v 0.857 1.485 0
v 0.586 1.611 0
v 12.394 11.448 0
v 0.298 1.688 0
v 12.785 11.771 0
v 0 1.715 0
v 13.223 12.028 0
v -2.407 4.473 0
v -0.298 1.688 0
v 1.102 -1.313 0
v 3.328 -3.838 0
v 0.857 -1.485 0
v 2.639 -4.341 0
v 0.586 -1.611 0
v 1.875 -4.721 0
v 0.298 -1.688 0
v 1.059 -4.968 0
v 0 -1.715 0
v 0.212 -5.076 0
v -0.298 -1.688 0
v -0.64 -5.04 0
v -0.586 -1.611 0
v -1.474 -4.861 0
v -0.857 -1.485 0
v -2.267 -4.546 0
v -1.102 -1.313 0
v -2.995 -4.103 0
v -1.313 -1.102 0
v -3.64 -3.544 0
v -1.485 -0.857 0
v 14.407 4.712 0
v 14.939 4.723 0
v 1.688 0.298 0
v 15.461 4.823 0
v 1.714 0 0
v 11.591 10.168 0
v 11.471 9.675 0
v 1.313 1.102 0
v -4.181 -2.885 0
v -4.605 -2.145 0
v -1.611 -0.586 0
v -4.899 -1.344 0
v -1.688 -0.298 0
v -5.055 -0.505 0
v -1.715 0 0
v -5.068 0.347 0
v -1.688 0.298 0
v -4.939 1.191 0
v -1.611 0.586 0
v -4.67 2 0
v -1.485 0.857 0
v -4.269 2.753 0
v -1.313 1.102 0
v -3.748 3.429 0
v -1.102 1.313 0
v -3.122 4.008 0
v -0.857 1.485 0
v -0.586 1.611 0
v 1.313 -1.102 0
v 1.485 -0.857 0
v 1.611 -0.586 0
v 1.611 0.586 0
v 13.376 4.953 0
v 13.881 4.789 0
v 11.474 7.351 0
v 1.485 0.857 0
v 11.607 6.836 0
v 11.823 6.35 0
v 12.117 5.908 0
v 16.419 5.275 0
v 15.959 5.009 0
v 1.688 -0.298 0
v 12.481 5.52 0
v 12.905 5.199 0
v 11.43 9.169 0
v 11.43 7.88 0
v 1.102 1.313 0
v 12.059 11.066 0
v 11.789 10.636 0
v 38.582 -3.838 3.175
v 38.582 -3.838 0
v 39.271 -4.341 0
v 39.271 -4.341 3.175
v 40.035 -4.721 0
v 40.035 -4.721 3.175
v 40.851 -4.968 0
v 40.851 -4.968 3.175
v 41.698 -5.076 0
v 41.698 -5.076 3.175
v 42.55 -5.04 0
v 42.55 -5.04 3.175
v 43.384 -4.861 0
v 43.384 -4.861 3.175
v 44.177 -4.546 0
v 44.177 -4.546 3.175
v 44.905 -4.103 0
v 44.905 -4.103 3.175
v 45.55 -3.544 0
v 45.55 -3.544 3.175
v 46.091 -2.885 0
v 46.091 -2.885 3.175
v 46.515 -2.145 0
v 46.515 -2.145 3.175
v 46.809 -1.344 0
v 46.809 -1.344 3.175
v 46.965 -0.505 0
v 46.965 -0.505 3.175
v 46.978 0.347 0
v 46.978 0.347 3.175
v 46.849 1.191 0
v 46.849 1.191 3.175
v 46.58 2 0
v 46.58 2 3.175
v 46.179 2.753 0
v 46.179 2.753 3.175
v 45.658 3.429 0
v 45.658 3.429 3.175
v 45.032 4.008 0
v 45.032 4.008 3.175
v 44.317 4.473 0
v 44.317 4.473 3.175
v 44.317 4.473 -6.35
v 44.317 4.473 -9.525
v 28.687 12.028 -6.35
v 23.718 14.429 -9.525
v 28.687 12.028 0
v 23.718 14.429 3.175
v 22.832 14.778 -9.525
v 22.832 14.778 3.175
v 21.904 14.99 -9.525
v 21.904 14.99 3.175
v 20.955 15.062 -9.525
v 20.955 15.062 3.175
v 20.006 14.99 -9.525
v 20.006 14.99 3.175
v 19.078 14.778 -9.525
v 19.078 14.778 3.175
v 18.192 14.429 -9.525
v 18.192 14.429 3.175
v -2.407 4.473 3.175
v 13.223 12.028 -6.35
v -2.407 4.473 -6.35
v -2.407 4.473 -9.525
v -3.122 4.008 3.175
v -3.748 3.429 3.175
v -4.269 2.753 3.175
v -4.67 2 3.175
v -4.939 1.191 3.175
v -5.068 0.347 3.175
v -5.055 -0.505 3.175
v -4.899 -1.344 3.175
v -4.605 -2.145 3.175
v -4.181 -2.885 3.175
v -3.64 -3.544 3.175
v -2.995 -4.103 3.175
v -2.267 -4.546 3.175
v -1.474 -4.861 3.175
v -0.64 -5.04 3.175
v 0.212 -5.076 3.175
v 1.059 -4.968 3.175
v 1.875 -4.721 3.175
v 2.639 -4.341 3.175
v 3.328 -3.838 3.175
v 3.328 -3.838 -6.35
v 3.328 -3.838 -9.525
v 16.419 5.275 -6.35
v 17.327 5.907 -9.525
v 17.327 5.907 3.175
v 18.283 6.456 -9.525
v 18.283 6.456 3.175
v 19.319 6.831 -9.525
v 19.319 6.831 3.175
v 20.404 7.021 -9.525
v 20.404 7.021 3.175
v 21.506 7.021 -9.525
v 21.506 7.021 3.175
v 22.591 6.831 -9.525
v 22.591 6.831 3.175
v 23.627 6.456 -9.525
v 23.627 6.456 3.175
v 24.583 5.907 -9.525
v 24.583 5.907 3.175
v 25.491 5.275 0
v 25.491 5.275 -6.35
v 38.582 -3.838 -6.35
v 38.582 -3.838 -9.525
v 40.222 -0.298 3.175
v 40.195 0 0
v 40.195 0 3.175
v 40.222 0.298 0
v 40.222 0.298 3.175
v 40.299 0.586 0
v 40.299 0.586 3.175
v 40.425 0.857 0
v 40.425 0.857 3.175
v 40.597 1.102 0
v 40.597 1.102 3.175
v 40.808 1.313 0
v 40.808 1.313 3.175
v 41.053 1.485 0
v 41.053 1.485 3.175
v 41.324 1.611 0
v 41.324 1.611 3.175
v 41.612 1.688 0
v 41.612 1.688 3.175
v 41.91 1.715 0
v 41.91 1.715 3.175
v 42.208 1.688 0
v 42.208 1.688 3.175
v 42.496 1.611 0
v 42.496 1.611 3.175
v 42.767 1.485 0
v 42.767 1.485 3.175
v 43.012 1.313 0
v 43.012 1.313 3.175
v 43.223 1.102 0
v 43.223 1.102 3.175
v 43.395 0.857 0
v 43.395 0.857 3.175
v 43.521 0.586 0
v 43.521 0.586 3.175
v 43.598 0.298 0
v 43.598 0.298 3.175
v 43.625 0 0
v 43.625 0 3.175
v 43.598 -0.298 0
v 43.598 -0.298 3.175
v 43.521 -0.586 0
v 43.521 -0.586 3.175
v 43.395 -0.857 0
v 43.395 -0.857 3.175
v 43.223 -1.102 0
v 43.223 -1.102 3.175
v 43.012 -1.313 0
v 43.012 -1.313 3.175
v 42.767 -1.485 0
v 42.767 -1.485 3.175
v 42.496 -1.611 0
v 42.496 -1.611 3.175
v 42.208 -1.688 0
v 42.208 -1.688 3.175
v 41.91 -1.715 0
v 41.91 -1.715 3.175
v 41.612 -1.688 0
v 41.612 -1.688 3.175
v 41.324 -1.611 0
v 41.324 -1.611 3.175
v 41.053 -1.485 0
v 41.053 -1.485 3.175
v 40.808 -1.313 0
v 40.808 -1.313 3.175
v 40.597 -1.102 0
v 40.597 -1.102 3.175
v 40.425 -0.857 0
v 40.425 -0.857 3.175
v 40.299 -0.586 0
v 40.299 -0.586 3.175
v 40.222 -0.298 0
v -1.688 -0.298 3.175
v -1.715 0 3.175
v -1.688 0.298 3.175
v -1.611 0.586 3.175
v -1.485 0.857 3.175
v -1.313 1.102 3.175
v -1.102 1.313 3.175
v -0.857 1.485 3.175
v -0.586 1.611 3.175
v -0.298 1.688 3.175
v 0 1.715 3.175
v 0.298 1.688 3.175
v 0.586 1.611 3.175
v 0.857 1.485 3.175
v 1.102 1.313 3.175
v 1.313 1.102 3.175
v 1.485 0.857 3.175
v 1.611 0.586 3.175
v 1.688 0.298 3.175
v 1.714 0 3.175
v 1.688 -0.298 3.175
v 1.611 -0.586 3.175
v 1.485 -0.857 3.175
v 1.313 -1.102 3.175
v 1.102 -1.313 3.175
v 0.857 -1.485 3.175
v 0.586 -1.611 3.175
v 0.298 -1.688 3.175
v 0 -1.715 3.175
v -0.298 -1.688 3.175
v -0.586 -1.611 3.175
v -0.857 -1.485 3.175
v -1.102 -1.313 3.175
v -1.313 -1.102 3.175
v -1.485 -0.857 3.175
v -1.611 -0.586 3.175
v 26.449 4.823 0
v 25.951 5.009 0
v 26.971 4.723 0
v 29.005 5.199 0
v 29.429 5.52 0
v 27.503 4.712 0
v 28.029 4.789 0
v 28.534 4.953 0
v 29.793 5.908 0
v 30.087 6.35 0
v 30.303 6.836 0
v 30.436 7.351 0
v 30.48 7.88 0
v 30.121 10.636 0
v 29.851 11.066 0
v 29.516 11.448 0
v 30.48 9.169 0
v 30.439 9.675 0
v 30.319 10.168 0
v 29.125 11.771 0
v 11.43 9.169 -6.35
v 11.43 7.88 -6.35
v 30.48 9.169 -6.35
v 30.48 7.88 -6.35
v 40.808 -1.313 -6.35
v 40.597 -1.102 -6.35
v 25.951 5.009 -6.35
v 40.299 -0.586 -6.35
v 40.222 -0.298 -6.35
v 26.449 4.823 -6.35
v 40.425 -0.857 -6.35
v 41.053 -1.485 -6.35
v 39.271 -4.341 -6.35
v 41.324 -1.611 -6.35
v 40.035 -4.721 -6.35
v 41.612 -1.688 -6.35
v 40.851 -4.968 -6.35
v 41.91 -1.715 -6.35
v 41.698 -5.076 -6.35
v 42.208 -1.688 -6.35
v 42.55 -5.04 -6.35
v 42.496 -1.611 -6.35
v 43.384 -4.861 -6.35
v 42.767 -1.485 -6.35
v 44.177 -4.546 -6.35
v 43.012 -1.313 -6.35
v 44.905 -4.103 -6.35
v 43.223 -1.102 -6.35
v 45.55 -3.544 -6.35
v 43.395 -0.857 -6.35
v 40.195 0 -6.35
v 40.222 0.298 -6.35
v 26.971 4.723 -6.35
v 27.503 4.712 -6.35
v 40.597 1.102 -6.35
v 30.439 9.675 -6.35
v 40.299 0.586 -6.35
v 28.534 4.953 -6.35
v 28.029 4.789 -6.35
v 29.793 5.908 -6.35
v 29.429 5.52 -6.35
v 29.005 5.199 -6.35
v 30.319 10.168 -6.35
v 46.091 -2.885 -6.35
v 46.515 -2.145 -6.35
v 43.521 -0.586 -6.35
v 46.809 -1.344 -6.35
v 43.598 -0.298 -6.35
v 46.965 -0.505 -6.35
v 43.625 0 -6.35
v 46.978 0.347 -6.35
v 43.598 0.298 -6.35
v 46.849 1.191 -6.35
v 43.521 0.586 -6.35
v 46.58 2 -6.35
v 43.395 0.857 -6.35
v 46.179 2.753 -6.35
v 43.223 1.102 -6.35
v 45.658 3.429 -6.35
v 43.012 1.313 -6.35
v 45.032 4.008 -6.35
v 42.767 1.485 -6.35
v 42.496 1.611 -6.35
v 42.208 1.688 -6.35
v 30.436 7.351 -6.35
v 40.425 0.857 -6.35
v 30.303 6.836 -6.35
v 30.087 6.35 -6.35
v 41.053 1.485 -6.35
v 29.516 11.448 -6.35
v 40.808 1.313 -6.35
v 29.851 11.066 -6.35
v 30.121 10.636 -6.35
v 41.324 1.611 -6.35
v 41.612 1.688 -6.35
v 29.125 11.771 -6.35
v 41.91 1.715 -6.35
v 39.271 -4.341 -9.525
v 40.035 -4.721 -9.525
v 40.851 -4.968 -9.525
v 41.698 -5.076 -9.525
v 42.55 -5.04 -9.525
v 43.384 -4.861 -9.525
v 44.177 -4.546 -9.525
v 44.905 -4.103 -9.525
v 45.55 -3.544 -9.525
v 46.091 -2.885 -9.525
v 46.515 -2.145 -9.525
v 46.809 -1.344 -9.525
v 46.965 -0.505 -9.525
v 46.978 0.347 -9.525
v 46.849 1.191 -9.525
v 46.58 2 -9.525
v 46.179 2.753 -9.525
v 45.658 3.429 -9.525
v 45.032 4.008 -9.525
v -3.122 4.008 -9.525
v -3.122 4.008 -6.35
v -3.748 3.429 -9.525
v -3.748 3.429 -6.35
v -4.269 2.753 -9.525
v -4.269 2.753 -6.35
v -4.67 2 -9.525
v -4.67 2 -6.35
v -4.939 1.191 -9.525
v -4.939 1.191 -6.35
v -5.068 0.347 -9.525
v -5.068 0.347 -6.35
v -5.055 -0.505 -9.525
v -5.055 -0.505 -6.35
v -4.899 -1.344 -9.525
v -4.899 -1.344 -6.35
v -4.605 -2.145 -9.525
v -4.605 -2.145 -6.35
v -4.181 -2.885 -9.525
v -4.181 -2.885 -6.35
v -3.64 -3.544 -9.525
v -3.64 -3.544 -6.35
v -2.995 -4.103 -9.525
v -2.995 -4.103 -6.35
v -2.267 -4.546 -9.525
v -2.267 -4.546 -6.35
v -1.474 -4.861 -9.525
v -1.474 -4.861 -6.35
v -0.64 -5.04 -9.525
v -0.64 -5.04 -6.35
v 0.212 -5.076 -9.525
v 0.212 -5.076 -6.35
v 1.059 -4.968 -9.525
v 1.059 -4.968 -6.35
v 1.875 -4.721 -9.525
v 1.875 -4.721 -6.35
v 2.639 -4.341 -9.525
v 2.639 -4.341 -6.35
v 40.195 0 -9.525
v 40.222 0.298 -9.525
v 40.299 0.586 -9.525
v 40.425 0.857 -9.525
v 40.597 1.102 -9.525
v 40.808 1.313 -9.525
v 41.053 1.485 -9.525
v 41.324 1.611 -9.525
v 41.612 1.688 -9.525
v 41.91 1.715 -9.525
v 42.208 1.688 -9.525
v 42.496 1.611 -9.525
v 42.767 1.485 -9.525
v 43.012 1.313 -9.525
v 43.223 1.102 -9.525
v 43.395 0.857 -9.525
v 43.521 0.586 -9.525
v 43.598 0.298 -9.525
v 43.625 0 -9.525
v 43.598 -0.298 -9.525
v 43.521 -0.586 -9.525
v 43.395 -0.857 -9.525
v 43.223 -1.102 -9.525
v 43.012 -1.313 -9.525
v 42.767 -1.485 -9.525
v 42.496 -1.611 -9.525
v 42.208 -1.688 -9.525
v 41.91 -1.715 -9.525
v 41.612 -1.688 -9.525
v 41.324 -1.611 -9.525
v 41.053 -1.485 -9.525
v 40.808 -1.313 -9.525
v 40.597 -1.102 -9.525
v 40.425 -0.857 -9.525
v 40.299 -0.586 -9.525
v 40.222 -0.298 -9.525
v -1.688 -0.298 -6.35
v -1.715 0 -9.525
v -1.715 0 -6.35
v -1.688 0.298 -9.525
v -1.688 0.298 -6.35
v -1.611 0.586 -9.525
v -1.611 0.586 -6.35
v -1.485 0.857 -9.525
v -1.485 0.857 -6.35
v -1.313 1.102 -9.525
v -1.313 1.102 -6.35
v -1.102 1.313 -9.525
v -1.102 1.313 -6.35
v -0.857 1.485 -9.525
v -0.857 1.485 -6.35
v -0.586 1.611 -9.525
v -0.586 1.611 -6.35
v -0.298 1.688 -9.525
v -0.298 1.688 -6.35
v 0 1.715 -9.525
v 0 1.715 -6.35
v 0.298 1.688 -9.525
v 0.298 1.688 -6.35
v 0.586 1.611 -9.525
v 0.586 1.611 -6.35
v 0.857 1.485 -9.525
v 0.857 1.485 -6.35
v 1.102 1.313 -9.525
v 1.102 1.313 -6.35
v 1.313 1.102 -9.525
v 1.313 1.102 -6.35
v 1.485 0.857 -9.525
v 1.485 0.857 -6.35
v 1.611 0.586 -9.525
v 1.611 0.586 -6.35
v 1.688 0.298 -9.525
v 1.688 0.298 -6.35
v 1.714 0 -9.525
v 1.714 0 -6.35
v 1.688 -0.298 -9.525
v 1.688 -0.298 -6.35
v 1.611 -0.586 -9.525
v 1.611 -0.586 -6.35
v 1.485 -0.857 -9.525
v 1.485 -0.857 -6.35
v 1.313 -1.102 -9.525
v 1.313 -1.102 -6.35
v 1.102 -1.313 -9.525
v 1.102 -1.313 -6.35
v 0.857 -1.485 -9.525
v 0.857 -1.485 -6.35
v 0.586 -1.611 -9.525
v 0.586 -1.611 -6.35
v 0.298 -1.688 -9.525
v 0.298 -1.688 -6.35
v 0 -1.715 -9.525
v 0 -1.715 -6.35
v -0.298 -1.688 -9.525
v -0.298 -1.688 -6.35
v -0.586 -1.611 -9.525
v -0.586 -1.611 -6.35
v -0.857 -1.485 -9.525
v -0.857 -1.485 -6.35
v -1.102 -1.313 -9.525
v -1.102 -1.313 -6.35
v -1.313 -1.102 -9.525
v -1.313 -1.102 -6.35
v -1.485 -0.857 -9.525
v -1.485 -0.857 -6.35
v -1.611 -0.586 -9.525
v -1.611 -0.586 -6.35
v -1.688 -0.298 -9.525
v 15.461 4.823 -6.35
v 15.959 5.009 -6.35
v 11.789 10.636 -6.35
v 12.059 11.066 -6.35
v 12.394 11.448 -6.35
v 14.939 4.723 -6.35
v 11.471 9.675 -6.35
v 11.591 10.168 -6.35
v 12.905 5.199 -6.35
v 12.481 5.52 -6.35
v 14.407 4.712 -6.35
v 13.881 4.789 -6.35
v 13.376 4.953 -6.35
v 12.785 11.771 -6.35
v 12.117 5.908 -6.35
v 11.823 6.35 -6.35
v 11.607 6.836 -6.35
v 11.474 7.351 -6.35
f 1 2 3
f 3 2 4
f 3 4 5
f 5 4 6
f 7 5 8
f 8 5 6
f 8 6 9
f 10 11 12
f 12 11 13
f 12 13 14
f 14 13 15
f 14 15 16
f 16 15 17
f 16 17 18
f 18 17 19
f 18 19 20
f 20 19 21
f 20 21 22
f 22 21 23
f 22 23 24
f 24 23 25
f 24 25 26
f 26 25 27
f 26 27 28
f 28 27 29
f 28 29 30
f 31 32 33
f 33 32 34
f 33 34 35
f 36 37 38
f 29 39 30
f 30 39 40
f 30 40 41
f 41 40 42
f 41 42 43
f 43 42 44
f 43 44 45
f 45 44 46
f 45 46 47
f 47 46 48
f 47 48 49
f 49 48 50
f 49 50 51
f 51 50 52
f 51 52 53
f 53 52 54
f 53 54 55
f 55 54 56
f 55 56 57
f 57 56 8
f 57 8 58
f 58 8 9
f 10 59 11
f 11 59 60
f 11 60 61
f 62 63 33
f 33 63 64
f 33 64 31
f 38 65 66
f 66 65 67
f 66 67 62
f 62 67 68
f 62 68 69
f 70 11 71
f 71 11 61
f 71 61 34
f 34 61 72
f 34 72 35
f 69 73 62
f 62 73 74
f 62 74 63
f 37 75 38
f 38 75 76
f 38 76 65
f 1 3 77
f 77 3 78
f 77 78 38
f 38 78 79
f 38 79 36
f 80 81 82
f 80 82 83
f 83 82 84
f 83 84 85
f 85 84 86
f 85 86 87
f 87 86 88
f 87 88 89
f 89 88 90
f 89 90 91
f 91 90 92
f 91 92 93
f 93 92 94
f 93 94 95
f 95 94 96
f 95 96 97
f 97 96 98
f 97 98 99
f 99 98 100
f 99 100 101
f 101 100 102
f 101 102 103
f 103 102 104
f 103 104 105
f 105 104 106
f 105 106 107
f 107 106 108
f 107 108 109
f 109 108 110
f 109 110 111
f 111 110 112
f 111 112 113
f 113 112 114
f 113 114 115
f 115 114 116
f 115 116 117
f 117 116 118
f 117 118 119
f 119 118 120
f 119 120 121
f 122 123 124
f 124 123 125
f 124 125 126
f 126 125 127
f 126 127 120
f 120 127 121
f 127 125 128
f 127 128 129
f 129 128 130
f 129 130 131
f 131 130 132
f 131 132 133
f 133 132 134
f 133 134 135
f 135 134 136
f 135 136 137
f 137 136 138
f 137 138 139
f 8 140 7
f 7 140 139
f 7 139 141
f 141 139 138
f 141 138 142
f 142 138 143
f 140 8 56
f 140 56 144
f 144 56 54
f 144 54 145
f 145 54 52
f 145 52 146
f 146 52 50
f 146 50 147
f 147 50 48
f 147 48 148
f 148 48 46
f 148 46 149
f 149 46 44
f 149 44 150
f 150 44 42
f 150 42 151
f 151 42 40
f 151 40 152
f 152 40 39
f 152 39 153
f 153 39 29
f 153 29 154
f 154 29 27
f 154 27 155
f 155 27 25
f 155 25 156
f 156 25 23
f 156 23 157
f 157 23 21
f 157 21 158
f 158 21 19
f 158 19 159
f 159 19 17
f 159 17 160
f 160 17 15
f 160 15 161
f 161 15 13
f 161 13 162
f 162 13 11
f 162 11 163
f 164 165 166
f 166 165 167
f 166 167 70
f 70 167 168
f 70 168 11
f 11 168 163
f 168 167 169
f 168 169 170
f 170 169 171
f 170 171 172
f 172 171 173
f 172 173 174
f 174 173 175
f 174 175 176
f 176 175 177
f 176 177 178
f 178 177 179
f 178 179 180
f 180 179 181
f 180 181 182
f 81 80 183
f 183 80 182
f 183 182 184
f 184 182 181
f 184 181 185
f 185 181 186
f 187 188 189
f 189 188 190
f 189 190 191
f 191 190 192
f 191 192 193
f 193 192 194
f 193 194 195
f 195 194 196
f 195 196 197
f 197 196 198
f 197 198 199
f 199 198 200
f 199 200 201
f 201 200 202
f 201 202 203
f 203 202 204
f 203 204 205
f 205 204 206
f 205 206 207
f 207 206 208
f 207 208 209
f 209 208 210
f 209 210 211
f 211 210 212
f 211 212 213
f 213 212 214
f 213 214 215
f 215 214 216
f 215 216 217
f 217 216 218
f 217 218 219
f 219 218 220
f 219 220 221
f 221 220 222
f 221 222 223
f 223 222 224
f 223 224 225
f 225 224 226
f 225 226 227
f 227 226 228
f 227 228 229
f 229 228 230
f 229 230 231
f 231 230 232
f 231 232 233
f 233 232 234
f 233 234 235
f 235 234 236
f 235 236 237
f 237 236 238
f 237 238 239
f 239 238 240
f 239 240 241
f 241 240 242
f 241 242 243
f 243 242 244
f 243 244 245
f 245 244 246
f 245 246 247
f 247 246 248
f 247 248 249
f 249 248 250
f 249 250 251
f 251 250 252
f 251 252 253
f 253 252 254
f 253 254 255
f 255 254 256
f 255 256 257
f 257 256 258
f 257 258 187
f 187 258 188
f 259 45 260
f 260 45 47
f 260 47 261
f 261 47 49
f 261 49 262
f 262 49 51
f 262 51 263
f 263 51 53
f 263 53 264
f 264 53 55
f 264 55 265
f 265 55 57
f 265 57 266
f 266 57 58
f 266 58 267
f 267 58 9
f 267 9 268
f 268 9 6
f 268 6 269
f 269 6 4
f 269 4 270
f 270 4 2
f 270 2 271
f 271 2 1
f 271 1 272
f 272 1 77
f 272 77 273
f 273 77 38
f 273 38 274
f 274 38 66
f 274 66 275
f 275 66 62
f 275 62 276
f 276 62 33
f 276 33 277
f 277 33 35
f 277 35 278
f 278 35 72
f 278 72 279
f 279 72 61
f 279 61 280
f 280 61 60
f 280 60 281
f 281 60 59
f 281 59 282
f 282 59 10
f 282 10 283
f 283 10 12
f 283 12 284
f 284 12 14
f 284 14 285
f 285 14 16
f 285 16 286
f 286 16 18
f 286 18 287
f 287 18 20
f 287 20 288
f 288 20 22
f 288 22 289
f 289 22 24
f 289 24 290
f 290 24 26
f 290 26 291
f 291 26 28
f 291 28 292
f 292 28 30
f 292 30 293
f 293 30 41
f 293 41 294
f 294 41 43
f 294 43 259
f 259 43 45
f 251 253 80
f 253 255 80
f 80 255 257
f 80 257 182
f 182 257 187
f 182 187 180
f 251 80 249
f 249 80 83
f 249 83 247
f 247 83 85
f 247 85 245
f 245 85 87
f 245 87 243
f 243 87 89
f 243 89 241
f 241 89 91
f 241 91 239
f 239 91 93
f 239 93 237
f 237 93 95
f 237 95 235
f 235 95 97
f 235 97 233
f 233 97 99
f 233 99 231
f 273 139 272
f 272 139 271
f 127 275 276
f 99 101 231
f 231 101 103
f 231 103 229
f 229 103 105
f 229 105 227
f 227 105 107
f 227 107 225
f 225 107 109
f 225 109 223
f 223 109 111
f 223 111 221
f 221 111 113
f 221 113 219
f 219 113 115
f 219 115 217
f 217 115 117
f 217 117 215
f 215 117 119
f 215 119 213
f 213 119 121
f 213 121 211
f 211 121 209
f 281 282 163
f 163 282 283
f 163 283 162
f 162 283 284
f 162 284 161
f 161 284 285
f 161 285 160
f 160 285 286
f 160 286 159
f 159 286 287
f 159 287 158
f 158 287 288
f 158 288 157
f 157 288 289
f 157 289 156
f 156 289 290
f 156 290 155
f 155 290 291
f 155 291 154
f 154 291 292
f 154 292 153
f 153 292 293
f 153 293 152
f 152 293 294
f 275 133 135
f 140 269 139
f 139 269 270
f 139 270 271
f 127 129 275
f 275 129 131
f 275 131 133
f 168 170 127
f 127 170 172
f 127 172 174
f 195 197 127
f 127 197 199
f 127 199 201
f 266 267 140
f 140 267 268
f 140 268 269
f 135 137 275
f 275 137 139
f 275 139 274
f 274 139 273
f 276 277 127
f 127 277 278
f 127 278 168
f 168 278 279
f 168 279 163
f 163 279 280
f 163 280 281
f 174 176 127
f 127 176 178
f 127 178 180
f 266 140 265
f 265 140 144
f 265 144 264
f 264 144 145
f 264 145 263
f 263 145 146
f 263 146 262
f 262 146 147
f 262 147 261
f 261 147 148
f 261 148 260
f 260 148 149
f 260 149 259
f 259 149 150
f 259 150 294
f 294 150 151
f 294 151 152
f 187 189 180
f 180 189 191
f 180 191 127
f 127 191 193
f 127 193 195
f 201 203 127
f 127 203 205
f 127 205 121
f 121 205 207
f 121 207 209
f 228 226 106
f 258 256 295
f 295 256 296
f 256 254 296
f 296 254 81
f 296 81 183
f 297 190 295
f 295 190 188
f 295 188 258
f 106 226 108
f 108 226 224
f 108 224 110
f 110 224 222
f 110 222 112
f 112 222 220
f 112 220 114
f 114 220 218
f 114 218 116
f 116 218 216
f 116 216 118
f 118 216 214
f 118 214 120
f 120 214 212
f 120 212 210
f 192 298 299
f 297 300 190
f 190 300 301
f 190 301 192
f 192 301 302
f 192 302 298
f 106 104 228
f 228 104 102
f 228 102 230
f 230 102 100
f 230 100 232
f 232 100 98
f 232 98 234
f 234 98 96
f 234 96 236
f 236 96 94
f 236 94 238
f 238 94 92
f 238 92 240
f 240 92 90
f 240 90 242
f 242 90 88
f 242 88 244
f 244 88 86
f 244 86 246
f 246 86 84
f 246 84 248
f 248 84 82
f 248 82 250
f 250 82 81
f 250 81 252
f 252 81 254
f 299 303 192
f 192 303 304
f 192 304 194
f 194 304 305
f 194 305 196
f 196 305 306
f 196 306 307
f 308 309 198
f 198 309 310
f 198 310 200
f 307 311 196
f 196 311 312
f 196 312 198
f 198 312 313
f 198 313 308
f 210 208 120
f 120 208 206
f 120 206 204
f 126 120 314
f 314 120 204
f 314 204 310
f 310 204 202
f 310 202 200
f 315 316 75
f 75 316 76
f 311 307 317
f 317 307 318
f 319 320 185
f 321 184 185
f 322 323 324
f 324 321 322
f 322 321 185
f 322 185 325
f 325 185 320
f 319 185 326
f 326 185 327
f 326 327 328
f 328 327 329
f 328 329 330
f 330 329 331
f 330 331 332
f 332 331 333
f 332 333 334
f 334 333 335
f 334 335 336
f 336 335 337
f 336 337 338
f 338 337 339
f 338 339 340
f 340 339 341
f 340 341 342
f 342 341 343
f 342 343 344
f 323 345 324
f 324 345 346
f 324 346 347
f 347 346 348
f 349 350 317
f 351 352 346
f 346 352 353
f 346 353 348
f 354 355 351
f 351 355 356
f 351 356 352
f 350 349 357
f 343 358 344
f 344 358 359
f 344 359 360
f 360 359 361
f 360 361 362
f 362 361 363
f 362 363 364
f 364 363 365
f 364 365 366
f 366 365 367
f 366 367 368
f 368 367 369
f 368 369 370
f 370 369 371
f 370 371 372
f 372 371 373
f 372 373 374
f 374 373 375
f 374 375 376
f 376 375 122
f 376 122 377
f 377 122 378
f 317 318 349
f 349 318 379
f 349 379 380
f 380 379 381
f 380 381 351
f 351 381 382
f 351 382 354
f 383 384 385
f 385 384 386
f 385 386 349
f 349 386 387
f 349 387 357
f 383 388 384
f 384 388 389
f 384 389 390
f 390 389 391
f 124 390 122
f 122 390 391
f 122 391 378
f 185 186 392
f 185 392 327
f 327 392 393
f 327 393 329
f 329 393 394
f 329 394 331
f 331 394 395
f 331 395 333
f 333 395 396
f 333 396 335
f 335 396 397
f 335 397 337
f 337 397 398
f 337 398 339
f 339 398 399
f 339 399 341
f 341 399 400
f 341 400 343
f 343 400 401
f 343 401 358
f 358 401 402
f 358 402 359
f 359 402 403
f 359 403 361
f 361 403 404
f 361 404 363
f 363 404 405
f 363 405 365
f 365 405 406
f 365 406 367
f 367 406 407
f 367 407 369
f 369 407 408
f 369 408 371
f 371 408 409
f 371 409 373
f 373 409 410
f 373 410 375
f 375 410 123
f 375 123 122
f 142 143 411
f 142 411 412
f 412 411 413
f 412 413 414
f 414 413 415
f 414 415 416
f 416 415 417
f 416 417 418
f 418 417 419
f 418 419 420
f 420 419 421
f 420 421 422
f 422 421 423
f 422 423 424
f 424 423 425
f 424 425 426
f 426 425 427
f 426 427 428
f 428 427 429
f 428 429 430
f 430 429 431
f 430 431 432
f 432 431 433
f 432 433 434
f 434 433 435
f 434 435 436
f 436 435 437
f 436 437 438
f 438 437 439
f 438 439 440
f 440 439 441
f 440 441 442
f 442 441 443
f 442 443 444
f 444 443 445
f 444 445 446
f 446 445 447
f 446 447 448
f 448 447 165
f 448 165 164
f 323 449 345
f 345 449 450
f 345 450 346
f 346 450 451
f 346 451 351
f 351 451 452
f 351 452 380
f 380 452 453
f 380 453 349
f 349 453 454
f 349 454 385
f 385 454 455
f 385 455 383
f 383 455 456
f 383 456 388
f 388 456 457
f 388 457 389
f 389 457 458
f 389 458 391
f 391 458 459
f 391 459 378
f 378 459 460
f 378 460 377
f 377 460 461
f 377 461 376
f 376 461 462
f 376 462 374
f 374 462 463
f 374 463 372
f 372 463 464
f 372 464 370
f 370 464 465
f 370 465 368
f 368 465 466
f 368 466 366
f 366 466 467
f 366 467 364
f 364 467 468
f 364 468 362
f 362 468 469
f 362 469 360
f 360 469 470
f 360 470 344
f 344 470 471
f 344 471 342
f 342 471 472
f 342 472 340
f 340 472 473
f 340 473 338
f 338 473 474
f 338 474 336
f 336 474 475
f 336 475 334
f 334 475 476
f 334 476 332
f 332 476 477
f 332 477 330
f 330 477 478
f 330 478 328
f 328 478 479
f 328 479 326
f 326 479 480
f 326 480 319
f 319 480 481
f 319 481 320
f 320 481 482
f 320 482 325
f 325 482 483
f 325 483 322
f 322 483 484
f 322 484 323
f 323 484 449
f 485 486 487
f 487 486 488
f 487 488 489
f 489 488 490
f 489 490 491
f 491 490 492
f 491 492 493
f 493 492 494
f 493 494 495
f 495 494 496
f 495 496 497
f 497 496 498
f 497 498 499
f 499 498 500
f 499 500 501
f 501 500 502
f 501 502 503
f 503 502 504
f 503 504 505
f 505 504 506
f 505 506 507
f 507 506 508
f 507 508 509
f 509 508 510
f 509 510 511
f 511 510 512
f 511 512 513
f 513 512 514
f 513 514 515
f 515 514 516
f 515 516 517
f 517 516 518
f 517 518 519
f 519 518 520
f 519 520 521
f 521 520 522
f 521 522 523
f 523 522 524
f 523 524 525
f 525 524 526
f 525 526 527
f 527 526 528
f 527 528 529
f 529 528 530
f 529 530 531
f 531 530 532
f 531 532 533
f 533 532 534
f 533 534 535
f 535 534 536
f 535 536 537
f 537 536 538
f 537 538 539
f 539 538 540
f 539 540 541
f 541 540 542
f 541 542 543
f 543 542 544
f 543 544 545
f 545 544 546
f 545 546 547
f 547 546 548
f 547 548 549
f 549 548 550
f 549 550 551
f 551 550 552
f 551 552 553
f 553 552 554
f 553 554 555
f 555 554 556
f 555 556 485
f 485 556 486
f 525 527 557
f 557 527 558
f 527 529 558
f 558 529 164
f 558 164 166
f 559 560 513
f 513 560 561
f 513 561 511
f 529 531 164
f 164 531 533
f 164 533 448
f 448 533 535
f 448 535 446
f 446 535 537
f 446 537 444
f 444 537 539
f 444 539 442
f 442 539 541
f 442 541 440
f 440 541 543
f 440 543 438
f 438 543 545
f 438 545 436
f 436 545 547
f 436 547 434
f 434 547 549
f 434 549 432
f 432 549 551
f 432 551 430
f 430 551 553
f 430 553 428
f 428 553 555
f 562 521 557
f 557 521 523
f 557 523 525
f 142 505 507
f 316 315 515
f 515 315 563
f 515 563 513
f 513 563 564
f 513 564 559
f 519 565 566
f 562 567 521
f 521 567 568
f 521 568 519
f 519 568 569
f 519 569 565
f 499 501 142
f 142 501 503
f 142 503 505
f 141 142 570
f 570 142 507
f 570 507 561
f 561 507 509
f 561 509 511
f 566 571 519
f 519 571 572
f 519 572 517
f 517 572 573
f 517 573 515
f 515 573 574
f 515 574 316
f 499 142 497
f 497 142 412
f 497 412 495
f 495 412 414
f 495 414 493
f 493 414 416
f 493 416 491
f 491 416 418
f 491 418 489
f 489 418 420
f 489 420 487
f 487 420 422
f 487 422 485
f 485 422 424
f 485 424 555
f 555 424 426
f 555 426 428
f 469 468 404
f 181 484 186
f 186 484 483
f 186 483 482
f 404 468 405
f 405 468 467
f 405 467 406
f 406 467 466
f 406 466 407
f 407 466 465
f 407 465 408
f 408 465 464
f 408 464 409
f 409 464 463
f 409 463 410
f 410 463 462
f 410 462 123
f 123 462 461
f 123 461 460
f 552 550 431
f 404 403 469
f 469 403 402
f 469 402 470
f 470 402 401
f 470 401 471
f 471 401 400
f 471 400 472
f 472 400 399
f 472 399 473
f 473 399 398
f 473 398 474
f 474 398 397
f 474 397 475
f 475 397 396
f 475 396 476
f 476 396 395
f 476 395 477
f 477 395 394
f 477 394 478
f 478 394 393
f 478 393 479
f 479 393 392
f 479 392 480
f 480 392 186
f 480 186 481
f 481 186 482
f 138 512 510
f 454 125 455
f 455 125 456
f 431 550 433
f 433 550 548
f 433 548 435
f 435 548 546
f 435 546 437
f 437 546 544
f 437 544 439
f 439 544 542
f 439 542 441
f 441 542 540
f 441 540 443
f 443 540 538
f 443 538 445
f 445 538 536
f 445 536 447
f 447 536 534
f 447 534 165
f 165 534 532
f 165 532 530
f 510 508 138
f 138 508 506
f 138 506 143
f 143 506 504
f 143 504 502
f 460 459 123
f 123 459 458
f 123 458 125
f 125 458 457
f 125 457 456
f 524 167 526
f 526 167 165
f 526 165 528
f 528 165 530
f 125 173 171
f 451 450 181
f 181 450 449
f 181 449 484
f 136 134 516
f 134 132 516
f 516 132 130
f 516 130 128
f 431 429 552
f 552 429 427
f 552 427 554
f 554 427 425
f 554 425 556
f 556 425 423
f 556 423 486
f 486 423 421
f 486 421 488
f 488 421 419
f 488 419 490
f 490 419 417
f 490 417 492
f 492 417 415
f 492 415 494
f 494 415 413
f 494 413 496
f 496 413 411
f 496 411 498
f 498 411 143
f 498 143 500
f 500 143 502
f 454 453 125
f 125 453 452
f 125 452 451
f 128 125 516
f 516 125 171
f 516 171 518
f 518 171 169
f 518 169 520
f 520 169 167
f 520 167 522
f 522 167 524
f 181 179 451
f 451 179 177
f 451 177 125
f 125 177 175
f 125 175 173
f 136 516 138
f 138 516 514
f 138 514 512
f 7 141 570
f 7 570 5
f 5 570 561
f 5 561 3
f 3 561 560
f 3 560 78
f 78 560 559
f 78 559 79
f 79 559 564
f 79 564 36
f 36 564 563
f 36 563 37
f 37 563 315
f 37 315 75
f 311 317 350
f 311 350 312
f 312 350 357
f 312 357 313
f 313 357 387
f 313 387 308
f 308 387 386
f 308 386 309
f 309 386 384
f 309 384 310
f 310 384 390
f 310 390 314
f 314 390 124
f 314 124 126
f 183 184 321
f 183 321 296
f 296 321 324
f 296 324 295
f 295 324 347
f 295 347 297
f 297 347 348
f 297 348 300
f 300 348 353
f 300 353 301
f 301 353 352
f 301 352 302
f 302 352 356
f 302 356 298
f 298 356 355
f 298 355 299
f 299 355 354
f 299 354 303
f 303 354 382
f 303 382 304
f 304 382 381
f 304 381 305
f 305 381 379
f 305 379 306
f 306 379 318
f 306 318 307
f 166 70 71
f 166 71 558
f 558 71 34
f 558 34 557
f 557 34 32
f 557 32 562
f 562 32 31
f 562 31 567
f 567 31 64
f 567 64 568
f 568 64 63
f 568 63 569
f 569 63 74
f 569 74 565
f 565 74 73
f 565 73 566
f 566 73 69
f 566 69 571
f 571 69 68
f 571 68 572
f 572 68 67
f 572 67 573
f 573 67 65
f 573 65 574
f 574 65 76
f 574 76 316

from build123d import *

# Parameters (mm, degrees)
SKETCH3_R           = 1.7145000000000004
SKETCH3_R_2         = 1.7144999999999995
BOSS_EXTRUDE1_DEPTH = 3.175
BOSS_EXTRUDE2_DEPTH = 36.83
LPATTERN2_COUNT     = 2
LPATTERN2_PITCH     = 9.525
CUT_EXTRUDE1_DEPTH  = 54.24920844482103
FILLET1_R           = 3.175


with BuildPart() as part:
    # Sketch3 → Boss-Extrude1 (new body)
    with BuildSketch(Plane.XY):
        with BuildLine():
            ThreePointArc((23.718196461855243, 14.429078391112267), (20.955, 15.061802351494215), (18.191803538144754, 14.429078391112267))
            Line((18.191803538144754, 14.429078391112265), (-2.009608404339229, 4.6656054335111925))
            Line((-2.009608404339229, 4.6656054335111925), (-2.407325349839823, 4.473386263225946))
            ThreePointArc((-2.4073253498398226, 4.473386263225944), (-4.1812606420695575, -2.885040631096911), (3.3277025000445404, -3.83833245970139))
            Line((3.3277025000445413, -3.8383324597013875), (17.32713374877397, 5.9068077182607865))
            ThreePointArc((17.32713374877397, 5.9068077182607865), (20.955, 7.045177794406333), (24.58286625122603, 5.90680771826079))
            Line((24.58286625122603, 5.906807718260788), (38.58229749995545, -3.838332459701375))
            ThreePointArc((38.58229749995546, -3.8383324597013706), (46.09126064206956, -2.8850406310969055), (44.31732534983981, 4.4733862632259465))
            Line((44.31732534983981, 4.473386263225951), (43.91960840433945, 4.665605433511086))
            Line((43.91960840433945, 4.665605433511086), (23.718196461855243, 14.429078391112267))
        make_face()
        Circle(SKETCH3_R, mode=Mode.SUBTRACT)
        with Locations((41.91, 0)):
            Circle(SKETCH3_R_2, mode=Mode.SUBTRACT)
    boss_extrude1 = extrude(amount=BOSS_EXTRUDE1_DEPTH)

    # Sketch4 → Boss-Extrude2 (add)
    with BuildSketch(Plane(origin=(0, 15.239999999999998, 0), x_dir=(1, 0, 0), z_dir=(0, 1, 0))):
        Polygon((11.43, 0), (30.480000000000004, 2.33e-15), (30.48, 6.350000000000002), (11.43, 6.35), align=None)
    extrude(amount=-BOSS_EXTRUDE2_DEPTH)

    # LPattern2: Boss-Extrude1 ×2
    with Locations(*[(0, 0, -i * LPATTERN2_PITCH) for i in range(1, LPATTERN2_COUNT)]):
        add(boss_extrude1)

    # Sketch5 → Cut-Extrude1 (cut, through all)
    with BuildSketch(Plane.XY.offset(3.175)):
        with BuildLine():
            Line((36.195, 8.398958601029964), (23.718196461855243, 14.429078391112268))
            ThreePointArc((23.718196461855243, 14.429078391112268), (20.955, 15.061802351494219), (18.191803538144754, 14.429078391112267))
            Line((18.191803538144754, 14.429078391112267), (5.715000000000005, 8.39895860102995))
            Line((5.715000000000005, 8.39895860102995), (5.714999999999998, 15.239999999999984))
            Line((5.714999999999998, 15.239999999999984), (36.195, 15.239999999999998))
            Line((36.195, 15.239999999999998), (36.195, 8.398958601029964))
        make_face()
        with BuildLine():
            Line((30.480000000000004, 1.8017555908602794), (24.58286625122603, 5.906807718260787))
            ThreePointArc((24.58286625122603, 5.906807718260787), (20.955000000000002, 7.045177794406331), (17.327133748773974, 5.906807718260784))
            Line((17.327133748773974, 5.906807718260784), (11.430000000000003, 1.8017555908602725))
            Line((11.430000000000003, 1.8017555908602725), (11.430000000000026, -23.117342691118424))
            Line((11.430000000000026, -23.117342691118424), (30.480000000000004, -23.117342691118413))
            Line((30.480000000000004, -23.117342691118413), (30.480000000000004, 1.8017555908602794))
        make_face()
    extrude(amount=-CUT_EXTRUDE1_DEPTH, mode=Mode.SUBTRACT)

    # Fillet1
    fillet1_edges = [part.edges().sort_by_distance(p)[0] for p in [
        (30.480000000000004, 1.8017555908602794, -3.1750000000000016),
        (11.430000000000003, 1.8017555908602725, -3.175),
        (30.48, 11.161055038227271, -3.1750000000000016),
        (11.43, 11.16105503822726, -3.1749999999999994),
    ]]
    fillet(fillet1_edges, radius=FILLET1_R)


solid = part.part
